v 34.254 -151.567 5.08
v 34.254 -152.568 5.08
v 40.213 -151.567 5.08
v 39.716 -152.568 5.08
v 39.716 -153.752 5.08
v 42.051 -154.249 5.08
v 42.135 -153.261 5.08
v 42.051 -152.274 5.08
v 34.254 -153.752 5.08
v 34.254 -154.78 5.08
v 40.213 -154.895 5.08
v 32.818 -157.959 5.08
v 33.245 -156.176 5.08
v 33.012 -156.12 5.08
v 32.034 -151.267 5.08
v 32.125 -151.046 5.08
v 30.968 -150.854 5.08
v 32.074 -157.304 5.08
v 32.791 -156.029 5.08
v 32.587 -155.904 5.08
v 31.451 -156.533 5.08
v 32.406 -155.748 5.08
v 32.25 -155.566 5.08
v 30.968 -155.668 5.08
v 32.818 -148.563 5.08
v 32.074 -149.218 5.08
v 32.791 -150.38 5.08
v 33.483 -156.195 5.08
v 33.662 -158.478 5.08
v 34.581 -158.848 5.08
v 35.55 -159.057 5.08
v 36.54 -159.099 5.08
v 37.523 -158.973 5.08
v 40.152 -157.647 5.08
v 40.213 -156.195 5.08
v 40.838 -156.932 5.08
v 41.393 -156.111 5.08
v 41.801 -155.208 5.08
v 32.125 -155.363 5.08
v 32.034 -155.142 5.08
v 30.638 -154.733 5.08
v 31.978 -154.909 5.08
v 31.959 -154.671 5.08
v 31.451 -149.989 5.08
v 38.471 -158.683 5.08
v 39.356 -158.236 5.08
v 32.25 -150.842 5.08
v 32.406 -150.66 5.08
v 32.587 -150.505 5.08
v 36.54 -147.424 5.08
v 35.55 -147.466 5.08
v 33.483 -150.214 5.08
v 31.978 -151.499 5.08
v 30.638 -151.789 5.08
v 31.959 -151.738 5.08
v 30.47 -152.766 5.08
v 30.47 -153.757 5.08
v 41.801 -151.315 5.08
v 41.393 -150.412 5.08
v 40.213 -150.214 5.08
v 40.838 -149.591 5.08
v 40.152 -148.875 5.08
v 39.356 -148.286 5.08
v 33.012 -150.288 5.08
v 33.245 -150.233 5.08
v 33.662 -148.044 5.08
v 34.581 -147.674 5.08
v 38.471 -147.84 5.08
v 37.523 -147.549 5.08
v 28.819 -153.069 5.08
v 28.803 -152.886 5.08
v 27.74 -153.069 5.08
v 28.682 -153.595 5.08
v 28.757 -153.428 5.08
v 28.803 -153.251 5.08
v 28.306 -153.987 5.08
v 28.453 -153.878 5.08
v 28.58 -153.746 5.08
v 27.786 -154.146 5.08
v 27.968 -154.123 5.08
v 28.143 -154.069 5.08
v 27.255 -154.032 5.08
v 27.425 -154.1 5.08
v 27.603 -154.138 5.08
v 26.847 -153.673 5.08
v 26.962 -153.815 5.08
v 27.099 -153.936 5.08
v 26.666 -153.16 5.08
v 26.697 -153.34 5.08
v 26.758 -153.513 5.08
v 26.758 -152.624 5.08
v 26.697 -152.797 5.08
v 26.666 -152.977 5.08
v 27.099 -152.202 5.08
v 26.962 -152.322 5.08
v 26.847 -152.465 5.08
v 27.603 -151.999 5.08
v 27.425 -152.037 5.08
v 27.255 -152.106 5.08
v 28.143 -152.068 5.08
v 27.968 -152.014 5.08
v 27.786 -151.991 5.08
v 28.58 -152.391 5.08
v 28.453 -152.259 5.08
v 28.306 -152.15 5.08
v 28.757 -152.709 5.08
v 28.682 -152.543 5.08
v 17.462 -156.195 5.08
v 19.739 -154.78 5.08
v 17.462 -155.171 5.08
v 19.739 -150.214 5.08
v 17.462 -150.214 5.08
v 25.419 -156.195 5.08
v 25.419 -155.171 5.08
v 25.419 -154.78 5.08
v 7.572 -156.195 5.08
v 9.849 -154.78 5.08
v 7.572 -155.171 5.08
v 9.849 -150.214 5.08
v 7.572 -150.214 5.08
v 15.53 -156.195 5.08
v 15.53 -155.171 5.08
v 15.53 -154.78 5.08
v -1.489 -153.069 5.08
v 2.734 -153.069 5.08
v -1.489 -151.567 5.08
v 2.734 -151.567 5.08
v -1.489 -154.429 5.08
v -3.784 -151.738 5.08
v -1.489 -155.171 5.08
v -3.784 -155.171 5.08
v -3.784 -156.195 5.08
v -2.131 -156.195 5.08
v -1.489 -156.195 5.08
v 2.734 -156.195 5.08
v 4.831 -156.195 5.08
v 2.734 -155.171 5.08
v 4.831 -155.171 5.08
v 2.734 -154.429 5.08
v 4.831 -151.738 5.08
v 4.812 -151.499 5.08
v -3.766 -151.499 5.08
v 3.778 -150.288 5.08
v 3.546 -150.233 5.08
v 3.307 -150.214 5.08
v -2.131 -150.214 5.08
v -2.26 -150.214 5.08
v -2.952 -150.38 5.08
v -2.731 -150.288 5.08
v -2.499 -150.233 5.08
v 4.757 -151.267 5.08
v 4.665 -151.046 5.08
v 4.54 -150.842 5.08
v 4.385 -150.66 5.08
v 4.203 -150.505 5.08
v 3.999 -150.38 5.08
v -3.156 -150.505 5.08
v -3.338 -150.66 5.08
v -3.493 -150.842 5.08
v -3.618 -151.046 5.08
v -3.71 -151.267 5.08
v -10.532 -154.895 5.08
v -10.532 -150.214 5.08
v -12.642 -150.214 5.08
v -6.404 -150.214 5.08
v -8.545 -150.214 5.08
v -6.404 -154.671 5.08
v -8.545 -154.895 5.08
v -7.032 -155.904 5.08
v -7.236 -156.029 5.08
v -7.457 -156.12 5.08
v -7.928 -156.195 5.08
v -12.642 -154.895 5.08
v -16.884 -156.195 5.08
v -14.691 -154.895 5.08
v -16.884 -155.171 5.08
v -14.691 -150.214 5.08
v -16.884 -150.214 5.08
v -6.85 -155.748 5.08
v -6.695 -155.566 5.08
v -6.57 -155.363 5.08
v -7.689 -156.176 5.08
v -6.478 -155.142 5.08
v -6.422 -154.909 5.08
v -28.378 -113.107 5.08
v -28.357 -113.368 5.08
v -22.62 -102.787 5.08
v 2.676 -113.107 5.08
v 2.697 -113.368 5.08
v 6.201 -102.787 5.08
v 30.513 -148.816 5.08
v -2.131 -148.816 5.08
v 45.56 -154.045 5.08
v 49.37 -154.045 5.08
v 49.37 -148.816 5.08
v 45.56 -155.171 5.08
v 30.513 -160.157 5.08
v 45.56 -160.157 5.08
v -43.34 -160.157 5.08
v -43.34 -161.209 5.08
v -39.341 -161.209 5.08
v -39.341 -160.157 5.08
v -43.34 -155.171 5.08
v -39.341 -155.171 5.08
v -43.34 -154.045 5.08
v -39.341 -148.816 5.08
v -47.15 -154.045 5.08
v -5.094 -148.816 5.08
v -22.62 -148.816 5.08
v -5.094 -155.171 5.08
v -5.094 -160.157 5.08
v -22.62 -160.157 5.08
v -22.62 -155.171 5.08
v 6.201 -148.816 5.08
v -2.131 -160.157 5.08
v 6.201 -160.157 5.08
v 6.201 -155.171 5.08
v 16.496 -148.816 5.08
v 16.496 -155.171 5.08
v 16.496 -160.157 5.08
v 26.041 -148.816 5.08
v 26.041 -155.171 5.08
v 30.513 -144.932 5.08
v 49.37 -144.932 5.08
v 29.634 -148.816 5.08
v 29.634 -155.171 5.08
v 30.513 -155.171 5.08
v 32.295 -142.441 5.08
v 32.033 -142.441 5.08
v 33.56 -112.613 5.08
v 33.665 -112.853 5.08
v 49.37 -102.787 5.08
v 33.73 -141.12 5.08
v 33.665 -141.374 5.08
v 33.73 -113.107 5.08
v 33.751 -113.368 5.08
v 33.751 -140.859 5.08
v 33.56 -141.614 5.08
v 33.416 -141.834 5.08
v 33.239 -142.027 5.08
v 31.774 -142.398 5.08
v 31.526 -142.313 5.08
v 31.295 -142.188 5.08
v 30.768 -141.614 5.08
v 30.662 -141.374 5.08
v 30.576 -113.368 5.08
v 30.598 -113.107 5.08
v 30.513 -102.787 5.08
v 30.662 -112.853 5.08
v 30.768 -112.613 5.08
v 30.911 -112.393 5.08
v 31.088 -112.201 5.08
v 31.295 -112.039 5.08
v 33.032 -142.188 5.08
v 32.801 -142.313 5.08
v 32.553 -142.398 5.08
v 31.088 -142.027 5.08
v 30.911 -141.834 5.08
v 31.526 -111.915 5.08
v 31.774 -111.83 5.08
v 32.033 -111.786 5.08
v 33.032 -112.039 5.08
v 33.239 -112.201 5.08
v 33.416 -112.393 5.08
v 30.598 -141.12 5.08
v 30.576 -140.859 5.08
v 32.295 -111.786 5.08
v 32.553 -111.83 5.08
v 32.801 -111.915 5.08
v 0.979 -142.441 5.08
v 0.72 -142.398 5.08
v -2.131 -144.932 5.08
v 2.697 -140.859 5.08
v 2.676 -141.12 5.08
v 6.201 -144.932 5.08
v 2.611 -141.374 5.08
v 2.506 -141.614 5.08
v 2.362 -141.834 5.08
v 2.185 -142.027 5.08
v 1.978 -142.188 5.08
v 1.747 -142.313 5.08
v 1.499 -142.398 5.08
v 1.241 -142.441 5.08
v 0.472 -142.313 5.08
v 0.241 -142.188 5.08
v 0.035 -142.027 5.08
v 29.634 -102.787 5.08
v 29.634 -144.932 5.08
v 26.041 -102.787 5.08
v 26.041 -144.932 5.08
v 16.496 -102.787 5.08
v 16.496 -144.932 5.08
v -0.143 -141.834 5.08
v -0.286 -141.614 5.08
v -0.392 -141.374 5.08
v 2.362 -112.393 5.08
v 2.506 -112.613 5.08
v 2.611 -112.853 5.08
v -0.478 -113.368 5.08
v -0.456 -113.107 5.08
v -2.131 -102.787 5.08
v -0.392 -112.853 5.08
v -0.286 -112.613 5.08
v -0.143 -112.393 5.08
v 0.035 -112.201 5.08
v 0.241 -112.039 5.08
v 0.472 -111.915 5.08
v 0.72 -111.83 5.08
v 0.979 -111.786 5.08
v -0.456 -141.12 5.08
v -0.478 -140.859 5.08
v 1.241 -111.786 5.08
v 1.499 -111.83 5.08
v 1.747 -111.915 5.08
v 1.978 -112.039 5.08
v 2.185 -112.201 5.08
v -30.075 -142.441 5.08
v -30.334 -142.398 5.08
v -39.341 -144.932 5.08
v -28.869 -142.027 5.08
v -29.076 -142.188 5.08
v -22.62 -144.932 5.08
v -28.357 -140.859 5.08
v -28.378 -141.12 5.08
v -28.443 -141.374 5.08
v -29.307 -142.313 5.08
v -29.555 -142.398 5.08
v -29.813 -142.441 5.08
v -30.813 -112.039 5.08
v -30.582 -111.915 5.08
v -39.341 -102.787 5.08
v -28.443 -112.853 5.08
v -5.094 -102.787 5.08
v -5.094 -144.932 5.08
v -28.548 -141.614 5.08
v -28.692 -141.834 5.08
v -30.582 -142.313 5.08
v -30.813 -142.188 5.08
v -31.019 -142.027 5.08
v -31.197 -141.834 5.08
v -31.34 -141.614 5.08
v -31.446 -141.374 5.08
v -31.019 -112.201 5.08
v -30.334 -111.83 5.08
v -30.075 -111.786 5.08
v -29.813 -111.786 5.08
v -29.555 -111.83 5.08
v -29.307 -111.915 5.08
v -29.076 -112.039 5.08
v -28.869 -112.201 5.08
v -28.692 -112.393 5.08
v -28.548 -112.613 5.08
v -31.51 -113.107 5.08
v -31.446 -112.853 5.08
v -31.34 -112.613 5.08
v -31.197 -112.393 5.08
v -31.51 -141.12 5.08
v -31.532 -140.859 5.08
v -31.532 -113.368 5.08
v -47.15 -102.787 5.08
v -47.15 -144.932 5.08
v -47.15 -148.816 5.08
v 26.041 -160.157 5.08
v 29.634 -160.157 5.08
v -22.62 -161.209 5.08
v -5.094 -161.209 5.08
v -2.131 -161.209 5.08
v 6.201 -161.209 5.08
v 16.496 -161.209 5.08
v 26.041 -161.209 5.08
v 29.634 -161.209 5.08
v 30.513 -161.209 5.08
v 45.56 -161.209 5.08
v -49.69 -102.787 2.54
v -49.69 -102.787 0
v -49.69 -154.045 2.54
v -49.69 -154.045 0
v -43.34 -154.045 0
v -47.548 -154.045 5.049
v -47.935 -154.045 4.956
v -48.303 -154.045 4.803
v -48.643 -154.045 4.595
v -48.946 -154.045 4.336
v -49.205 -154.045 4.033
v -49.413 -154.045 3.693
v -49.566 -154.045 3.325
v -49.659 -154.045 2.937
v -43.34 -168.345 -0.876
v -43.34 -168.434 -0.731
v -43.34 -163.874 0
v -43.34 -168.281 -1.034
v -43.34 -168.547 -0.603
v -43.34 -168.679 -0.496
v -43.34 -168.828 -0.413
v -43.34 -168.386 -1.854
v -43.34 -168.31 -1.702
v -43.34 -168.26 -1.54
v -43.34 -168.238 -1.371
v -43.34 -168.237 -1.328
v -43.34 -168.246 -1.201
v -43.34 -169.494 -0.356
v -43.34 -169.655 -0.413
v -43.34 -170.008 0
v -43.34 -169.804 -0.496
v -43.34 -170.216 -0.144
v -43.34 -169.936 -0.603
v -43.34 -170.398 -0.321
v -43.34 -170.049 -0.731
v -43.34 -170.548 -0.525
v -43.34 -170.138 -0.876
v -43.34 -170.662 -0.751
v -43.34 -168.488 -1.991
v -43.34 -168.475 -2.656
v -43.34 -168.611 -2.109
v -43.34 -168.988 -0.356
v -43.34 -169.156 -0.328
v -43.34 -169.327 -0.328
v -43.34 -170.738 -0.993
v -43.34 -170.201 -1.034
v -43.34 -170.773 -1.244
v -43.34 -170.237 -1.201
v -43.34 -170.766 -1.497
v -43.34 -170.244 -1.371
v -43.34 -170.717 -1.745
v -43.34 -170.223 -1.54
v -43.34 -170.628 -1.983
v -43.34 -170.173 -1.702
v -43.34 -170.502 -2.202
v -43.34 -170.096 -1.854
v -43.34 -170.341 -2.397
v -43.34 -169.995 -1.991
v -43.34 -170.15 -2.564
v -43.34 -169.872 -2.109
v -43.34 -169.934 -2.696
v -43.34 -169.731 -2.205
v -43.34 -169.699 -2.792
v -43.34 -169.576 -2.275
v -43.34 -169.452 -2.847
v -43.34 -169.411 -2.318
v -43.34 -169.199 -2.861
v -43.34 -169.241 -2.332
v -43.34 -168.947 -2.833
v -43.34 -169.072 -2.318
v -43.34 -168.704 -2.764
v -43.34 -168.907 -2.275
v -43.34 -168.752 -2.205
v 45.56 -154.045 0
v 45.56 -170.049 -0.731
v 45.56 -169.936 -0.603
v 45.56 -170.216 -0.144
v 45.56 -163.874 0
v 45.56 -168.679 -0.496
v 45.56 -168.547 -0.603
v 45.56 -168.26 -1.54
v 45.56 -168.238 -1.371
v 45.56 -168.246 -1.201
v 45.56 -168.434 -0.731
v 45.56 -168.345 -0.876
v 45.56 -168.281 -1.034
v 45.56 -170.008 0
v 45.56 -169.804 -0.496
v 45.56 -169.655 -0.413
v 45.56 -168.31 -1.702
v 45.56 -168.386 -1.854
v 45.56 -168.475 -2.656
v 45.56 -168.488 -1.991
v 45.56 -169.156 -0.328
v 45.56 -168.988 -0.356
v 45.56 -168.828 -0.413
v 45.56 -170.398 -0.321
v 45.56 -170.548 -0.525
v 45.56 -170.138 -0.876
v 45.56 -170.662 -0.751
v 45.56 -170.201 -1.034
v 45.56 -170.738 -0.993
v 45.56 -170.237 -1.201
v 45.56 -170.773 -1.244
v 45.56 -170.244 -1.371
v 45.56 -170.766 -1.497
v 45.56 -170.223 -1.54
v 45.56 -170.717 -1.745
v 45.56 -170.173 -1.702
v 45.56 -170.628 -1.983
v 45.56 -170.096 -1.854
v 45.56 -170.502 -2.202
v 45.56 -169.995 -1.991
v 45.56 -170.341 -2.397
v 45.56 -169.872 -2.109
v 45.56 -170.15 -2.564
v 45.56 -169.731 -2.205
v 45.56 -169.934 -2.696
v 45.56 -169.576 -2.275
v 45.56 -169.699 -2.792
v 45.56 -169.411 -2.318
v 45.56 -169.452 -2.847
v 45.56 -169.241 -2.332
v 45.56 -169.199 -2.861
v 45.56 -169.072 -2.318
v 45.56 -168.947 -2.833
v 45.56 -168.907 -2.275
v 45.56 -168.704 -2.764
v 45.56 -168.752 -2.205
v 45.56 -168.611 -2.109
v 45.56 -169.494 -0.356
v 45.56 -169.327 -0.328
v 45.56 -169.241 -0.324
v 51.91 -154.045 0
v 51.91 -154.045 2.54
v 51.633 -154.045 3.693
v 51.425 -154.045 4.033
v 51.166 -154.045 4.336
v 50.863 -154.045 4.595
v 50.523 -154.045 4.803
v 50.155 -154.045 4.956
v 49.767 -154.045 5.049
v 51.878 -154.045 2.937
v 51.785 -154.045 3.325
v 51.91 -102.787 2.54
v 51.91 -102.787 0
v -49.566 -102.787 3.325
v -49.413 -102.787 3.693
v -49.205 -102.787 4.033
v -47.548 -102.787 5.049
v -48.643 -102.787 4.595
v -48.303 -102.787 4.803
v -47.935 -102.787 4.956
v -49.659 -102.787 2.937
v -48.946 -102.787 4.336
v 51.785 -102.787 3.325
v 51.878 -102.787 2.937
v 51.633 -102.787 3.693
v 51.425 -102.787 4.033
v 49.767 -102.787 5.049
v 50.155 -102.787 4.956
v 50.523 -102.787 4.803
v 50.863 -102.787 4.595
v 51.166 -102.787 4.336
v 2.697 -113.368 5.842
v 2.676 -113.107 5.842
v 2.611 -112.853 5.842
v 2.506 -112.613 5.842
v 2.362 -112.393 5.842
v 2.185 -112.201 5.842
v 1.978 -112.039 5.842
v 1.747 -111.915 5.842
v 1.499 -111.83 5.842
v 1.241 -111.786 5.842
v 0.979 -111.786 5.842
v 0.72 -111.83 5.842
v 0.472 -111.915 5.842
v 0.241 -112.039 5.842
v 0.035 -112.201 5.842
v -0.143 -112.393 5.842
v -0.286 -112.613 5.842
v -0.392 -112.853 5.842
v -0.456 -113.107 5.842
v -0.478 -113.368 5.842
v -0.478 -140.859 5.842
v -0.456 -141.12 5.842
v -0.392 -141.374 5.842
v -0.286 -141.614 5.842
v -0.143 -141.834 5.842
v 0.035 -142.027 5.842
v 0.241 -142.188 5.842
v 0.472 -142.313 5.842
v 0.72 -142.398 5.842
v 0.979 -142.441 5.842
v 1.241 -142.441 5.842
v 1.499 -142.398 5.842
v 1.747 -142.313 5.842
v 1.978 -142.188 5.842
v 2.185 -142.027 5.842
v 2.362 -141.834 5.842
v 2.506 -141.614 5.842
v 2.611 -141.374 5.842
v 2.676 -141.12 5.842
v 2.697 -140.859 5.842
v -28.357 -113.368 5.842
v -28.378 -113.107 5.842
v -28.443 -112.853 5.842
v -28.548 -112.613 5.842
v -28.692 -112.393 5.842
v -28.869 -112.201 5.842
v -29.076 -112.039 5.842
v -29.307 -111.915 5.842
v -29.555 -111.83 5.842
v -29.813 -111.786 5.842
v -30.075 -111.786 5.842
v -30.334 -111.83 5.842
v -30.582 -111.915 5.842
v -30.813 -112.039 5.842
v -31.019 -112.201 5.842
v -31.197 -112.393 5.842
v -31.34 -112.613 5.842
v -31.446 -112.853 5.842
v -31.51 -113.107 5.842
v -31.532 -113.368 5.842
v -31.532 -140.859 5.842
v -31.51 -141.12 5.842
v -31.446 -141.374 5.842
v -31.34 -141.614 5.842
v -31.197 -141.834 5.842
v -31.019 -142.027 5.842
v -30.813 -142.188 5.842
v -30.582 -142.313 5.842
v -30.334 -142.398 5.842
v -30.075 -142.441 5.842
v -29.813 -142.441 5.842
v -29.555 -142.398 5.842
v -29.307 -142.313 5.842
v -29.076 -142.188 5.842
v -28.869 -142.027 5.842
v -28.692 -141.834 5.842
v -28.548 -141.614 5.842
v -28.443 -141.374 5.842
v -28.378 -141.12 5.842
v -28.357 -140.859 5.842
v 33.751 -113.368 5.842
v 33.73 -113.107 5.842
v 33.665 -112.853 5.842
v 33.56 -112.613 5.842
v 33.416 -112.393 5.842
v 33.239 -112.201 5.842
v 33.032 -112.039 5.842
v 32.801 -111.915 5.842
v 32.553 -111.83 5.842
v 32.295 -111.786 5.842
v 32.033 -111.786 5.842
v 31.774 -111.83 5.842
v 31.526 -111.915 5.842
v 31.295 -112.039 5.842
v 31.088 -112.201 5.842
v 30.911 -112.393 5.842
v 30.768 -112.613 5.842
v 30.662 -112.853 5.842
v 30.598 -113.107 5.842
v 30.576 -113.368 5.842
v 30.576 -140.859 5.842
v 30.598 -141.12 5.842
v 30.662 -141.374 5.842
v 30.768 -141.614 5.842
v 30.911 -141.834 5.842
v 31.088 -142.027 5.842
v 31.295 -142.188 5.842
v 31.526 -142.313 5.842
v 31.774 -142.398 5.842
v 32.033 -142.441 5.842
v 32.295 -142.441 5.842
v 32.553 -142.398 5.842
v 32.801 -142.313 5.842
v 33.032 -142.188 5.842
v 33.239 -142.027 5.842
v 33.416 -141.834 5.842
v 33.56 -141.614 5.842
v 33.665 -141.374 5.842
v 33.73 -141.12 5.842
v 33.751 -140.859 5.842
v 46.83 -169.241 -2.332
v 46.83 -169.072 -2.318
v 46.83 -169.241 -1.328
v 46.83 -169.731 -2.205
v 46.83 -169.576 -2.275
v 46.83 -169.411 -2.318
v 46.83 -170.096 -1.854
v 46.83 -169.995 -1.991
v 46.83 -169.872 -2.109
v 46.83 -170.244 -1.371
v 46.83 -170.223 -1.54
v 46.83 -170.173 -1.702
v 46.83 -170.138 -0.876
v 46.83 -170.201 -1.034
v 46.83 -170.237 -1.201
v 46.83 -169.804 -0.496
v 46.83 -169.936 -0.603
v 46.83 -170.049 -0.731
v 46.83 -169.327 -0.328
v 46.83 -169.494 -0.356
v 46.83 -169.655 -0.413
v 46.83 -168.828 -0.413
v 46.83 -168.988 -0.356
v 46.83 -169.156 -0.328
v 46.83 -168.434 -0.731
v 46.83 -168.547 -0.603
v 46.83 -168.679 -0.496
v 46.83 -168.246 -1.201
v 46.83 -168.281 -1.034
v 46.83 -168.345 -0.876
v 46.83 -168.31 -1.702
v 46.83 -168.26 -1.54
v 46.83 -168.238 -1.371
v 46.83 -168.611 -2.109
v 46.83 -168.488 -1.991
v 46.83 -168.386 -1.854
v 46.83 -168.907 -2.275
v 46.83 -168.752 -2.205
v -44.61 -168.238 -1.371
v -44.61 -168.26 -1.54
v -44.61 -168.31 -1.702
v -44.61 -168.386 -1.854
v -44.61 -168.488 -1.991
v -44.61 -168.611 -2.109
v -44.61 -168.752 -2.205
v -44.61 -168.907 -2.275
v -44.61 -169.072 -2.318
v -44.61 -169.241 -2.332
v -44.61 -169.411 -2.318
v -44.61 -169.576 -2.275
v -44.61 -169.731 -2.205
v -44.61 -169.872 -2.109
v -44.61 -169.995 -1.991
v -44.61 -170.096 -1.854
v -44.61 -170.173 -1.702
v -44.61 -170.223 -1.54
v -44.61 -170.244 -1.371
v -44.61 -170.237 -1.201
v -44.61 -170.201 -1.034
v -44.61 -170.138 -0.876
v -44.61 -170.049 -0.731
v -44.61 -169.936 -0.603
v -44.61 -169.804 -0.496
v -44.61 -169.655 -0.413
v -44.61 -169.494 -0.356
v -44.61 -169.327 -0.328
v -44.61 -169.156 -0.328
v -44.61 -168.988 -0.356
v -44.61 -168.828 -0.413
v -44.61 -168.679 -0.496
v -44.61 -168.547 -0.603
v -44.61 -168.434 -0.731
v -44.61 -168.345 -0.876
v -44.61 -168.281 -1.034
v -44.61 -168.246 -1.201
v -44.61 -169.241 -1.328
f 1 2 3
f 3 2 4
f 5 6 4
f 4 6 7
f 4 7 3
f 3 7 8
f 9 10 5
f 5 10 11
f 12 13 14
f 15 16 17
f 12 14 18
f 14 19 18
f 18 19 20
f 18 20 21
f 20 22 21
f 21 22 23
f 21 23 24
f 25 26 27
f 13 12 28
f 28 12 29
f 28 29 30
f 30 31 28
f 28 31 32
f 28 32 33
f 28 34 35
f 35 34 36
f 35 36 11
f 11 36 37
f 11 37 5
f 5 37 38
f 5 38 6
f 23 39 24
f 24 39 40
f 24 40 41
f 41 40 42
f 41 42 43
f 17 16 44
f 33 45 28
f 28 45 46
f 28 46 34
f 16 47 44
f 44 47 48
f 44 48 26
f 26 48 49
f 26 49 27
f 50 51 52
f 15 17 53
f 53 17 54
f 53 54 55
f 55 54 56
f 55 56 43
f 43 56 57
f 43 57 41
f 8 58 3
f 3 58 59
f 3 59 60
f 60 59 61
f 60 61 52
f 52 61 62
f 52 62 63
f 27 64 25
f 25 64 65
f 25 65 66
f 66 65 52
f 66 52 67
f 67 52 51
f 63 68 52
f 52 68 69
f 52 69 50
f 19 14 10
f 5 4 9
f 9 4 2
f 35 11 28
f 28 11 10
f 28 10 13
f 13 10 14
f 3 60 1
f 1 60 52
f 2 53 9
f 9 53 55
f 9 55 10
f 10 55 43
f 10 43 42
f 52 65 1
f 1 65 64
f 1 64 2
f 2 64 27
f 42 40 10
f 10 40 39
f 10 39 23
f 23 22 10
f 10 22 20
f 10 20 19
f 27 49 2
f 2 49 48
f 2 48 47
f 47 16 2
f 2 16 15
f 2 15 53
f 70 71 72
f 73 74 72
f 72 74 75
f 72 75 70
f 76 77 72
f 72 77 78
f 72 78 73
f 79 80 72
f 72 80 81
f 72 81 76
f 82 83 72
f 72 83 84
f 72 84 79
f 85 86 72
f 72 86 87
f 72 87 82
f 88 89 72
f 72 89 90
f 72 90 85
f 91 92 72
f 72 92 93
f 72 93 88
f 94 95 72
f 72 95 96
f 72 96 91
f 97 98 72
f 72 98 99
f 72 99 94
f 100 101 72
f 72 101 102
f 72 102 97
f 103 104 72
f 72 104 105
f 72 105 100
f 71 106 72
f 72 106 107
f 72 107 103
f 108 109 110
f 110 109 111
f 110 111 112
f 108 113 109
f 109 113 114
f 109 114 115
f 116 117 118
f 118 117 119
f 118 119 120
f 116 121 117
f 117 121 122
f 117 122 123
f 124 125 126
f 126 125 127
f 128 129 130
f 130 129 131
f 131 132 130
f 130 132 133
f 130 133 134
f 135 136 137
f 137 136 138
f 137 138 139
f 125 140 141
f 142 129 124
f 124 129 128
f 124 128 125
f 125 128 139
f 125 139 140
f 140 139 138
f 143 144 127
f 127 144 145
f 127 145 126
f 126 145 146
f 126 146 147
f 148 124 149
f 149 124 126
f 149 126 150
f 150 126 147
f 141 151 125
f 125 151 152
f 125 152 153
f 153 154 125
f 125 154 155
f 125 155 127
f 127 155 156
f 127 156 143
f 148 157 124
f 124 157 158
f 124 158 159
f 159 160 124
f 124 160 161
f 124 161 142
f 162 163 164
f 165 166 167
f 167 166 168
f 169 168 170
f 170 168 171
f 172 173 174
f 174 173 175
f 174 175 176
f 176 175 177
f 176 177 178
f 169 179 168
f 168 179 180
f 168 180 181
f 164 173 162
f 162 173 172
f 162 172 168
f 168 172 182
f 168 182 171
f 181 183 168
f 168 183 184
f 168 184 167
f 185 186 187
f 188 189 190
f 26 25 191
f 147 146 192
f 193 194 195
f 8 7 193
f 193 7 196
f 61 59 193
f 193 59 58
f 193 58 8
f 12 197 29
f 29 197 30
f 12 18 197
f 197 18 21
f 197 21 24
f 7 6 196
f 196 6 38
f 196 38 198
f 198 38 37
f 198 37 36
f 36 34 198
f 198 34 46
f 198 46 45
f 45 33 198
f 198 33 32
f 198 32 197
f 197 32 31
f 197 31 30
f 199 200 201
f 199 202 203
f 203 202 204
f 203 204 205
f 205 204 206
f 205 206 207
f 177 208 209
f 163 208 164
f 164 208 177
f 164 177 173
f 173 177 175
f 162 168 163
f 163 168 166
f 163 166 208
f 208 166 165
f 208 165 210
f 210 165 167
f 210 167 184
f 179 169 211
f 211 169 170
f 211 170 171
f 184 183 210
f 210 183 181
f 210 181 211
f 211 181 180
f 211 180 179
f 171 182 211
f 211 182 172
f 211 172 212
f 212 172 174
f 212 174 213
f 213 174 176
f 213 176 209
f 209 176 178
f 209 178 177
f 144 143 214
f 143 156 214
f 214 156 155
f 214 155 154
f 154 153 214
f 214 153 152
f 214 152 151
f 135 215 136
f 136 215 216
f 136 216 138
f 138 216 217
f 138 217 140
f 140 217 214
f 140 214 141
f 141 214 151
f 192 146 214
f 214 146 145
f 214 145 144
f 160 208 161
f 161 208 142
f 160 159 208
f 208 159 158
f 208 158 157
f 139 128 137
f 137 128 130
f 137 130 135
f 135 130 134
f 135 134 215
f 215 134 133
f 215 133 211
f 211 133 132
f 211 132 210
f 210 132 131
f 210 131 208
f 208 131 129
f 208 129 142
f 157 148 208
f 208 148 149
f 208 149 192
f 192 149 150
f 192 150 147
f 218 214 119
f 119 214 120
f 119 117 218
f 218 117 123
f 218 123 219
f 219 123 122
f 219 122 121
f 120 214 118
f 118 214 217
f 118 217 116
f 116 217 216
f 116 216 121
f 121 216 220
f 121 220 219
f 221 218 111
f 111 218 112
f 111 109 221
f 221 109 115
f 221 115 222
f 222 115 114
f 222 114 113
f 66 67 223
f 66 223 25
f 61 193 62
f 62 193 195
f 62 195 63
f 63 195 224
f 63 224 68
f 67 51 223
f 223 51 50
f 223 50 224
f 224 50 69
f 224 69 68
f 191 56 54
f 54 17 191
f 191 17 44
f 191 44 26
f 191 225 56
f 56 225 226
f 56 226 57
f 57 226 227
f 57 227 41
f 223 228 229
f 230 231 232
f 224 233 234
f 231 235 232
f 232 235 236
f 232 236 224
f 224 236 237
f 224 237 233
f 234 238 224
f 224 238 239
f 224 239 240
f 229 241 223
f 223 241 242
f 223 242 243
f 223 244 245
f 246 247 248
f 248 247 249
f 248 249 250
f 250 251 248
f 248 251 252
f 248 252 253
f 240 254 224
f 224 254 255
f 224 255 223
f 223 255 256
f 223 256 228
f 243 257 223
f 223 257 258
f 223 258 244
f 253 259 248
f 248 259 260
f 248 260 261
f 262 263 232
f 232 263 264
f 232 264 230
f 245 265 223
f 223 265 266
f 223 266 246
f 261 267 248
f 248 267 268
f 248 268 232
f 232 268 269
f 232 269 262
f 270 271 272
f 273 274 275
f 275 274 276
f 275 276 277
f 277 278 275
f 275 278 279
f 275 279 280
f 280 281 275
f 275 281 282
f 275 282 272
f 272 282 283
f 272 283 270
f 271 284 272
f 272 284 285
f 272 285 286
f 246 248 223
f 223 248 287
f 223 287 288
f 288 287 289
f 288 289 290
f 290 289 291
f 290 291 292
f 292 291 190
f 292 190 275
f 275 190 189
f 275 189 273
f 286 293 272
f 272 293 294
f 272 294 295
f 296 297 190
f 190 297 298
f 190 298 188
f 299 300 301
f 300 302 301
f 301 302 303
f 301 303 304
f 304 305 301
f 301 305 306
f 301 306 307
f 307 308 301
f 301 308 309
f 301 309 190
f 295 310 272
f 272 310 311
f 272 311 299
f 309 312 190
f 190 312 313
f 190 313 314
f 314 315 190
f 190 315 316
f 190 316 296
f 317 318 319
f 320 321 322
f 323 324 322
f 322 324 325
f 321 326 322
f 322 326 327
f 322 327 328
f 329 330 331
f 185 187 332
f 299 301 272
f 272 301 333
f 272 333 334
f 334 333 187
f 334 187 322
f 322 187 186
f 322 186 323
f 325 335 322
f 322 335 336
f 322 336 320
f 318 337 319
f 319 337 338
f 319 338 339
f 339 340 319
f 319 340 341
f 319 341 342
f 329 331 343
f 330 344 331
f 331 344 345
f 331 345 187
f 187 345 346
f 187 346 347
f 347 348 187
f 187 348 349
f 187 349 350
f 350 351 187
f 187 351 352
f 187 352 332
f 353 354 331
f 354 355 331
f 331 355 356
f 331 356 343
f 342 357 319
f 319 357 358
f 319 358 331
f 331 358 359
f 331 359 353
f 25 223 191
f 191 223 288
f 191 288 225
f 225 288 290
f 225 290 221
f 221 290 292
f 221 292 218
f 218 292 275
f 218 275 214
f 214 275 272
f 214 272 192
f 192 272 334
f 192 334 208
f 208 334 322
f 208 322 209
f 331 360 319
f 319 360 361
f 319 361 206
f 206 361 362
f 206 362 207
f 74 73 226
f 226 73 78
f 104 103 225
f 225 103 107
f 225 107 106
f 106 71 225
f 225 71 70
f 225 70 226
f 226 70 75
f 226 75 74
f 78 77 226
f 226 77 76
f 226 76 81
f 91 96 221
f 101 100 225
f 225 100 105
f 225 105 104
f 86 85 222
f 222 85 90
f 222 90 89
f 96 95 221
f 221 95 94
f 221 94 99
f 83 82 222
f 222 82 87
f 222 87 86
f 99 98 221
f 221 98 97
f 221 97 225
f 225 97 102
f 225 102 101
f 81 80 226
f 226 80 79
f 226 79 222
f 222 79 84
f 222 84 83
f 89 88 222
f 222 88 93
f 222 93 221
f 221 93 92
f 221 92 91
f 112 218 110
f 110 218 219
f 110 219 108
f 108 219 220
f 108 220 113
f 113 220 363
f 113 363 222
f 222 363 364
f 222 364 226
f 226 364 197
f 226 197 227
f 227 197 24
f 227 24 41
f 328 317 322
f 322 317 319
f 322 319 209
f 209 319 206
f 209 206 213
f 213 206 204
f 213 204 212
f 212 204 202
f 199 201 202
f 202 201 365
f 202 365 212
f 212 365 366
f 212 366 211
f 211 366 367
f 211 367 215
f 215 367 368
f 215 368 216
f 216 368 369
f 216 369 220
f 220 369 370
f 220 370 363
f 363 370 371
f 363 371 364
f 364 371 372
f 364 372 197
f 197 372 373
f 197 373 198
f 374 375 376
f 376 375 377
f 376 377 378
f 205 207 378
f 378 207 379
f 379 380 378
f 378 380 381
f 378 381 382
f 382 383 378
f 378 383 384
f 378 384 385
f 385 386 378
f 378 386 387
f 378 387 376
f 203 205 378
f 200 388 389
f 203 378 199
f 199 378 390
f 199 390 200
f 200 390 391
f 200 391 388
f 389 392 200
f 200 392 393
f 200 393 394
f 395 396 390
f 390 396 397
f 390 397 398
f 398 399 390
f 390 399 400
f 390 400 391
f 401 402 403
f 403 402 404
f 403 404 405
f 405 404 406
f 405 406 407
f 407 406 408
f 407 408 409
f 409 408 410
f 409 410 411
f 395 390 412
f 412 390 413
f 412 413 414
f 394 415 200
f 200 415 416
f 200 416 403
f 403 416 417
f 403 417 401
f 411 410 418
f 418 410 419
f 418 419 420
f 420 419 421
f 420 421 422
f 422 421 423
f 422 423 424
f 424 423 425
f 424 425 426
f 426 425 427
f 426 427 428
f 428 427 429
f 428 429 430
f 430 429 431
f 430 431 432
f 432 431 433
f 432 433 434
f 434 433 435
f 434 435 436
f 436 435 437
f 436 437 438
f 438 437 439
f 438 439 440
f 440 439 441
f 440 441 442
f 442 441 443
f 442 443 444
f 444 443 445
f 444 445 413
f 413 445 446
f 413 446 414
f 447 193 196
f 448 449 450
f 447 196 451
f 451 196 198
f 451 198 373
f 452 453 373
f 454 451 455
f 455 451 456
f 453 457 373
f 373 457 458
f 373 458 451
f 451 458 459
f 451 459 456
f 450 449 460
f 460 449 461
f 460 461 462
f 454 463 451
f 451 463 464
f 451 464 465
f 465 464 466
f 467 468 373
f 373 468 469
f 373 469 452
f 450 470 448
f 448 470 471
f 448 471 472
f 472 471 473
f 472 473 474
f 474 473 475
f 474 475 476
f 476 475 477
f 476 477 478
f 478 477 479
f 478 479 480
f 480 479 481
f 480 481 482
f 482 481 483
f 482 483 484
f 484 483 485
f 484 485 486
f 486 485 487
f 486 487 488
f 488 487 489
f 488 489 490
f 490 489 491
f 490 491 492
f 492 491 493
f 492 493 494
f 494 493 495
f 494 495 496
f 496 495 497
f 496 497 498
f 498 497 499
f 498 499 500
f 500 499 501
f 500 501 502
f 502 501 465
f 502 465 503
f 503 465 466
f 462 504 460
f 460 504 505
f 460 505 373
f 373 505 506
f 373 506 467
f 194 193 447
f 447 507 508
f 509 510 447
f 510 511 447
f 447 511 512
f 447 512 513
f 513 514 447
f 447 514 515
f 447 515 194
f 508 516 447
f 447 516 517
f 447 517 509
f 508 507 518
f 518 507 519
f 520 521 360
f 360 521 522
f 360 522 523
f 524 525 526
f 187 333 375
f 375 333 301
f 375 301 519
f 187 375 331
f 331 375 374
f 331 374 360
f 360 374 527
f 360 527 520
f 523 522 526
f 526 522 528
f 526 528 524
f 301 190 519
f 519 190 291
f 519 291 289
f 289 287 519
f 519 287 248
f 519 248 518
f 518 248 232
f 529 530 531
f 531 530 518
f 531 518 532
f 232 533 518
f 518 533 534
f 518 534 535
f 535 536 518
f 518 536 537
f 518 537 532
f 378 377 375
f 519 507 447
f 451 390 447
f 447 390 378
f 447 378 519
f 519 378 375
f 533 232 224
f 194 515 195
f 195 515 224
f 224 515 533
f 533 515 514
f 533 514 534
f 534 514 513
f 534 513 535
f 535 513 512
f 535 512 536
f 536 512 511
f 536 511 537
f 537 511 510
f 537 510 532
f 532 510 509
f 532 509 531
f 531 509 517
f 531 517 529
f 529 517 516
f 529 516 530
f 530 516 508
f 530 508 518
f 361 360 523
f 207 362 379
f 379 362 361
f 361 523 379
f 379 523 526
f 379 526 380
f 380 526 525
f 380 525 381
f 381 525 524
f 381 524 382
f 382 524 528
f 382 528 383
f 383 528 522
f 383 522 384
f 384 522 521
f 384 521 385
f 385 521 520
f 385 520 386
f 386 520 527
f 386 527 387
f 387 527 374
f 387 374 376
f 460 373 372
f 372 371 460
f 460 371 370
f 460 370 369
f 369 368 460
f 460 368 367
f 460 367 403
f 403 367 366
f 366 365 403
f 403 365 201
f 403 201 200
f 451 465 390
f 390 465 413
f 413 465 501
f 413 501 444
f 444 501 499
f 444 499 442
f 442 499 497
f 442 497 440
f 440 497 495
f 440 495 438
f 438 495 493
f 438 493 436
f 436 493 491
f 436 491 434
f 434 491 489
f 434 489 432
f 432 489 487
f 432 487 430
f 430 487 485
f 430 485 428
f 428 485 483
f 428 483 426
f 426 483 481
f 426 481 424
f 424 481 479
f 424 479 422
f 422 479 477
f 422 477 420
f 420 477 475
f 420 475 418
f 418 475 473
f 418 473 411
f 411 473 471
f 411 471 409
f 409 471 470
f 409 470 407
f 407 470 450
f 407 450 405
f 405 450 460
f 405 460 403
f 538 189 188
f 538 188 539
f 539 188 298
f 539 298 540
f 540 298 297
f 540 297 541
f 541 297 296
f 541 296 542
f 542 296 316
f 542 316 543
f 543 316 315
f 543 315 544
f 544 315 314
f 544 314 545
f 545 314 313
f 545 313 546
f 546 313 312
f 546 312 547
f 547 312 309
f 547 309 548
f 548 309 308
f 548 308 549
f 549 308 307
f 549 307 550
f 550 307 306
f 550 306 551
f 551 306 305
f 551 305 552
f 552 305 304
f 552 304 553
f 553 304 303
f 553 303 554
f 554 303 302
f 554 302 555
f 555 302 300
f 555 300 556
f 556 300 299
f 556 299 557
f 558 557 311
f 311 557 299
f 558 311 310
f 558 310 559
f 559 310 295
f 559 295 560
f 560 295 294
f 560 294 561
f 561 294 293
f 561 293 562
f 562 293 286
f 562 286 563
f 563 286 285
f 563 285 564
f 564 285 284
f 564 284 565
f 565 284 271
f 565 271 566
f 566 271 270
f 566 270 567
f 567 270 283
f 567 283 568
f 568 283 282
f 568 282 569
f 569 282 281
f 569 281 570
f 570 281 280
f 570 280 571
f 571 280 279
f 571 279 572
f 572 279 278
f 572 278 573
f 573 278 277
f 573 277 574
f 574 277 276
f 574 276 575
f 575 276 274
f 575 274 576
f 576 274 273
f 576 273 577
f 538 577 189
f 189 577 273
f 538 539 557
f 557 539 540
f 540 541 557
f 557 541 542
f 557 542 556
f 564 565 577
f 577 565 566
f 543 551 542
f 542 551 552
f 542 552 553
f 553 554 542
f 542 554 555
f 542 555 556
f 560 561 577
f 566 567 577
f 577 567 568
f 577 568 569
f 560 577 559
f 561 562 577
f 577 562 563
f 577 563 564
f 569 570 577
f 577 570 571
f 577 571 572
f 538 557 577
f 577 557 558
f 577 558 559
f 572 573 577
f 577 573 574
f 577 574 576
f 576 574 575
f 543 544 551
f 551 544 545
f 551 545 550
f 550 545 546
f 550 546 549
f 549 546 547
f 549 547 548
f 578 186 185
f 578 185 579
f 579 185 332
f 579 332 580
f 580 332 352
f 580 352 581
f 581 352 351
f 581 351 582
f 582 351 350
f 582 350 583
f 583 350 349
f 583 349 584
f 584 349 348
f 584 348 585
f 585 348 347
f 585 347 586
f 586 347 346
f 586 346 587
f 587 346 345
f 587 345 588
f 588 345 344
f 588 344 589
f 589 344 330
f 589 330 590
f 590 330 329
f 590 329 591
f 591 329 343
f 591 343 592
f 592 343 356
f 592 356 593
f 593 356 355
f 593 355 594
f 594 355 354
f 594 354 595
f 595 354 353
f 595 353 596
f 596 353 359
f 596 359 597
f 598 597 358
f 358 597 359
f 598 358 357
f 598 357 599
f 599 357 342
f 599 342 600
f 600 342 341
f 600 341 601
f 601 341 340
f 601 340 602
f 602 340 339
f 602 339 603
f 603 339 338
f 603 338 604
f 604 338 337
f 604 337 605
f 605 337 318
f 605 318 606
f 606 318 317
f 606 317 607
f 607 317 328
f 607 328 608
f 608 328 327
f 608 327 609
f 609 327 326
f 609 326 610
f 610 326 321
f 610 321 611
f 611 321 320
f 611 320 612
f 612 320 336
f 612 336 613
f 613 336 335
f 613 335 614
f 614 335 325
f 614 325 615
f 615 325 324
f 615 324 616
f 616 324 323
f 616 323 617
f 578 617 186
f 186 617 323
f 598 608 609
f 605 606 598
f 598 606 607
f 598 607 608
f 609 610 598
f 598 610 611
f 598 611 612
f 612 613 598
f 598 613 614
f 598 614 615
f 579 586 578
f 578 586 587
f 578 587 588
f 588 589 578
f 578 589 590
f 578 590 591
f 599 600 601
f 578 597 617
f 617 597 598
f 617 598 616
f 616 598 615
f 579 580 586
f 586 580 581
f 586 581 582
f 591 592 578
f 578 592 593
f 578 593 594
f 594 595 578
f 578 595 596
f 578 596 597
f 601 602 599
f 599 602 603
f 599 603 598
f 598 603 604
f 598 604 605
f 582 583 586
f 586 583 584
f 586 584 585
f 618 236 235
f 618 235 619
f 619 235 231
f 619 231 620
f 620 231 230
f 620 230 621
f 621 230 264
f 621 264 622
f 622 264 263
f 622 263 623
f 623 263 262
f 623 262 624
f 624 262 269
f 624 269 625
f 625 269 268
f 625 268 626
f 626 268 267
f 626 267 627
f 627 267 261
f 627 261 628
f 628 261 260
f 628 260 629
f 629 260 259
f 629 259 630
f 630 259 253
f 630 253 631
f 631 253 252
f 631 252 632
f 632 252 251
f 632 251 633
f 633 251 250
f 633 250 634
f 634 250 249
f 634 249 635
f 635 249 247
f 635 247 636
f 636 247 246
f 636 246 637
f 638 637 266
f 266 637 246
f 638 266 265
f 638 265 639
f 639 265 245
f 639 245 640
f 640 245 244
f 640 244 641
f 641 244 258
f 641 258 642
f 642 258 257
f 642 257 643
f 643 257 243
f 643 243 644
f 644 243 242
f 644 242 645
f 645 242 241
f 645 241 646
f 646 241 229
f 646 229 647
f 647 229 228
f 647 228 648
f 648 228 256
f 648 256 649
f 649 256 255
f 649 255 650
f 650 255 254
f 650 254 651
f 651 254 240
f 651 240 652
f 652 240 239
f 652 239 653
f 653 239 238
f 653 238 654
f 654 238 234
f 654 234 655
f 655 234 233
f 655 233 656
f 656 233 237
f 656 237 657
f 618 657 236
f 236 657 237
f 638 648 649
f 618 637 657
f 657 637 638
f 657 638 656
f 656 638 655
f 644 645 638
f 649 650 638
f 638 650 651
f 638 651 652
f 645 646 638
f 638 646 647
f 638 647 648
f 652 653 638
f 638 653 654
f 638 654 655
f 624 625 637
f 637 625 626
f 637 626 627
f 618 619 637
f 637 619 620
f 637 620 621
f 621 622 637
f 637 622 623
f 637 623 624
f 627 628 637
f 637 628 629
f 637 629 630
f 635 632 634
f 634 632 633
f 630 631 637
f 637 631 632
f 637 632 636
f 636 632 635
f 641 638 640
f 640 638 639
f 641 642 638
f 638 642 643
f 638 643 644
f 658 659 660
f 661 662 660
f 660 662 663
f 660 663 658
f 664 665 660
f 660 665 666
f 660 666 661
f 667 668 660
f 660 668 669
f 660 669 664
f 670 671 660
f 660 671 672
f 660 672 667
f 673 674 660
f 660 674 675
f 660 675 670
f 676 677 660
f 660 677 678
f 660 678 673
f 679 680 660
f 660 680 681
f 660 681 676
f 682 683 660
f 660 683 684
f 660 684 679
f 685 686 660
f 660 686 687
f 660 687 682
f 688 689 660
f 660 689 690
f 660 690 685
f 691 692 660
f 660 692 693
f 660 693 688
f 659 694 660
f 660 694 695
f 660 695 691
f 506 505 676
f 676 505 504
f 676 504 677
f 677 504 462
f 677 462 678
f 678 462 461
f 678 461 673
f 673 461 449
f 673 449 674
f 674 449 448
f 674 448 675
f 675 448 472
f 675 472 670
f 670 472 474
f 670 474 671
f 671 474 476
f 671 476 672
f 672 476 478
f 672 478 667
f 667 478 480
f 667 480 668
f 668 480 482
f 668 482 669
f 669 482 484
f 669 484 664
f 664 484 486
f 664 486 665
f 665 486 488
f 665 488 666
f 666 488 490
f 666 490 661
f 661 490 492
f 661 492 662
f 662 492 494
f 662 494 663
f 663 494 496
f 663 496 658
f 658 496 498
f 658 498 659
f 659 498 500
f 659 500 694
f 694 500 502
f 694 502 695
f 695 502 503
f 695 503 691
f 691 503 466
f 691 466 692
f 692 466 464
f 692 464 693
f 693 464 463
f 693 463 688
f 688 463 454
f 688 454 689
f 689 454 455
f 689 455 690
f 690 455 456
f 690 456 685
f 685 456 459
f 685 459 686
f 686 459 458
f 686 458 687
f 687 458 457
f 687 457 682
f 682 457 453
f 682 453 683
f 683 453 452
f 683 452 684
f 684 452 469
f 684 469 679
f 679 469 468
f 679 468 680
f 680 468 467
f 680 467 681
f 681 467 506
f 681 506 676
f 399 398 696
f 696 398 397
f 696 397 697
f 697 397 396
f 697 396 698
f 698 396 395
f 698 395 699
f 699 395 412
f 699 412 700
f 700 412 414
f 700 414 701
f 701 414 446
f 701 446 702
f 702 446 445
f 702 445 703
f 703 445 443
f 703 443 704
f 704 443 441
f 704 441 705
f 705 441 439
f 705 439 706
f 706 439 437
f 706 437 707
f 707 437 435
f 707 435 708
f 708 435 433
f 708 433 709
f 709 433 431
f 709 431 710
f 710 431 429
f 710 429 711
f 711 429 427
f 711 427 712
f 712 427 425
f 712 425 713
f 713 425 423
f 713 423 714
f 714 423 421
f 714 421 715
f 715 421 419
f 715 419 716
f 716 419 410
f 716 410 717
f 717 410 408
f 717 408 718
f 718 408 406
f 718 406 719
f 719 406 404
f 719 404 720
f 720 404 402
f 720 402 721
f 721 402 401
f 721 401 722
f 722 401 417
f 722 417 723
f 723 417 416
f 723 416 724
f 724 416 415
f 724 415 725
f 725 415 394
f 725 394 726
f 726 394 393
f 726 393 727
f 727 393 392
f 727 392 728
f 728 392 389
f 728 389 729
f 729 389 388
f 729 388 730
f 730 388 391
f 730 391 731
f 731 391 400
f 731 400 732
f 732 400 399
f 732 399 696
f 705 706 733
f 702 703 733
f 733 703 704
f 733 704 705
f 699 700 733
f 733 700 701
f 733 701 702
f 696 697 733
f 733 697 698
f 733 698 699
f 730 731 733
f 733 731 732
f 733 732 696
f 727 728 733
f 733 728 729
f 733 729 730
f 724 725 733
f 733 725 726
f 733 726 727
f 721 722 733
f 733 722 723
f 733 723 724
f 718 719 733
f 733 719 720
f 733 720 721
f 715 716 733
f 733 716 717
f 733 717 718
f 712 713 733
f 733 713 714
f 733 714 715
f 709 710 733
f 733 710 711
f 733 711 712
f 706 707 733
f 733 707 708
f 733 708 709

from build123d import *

# Parameters (mm, degrees)
EXTRUDE1_DEPTH               = 5.08
FILLET1_R                    = 2.54
CHAMFER1_SIZE2               = 5.08
CHAMFER1_SIZE                = 8.798818102
EXTRUDE3_DEPTH               = 88.9
EXTRUDE4_DEPTH               = 0.762
SALIENTE_EXTRUIR1_DEPTH      = 1.27
SALIENTE_EXTRUIR1_DEPTH_BACK = 90.17
SKETCH2_R                    = 1.003990475


with BuildPart() as part:
    # Sketch1 → Extrude1 (new body)
    with BuildSketch(Plane.XY):
        Polygon((-49.690313901, -102.787097767), (51.909686099, -102.787097767), (51.909686099, -154.045409896), (45.559686099, -154.045409896), (45.559686099, -170.008151162), (-43.340313901, -170.008151162), (-43.340313901, -154.045409896), (-49.690313901, -154.045409896), align=None)
    extrude(amount=EXTRUDE1_DEPTH)

    # Fillet1
    fillet1_edges = [part.edges().sort_by_distance(p)[0] for p in [
        (51.909686099, -128.416253832, 5.08),
        (-49.690313901, -128.416253832, 5.08),
    ]]
    fillet(fillet1_edges, radius=FILLET1_R)

    # Chamfer1
    chamfer1_edges = [part.edges().sort_by_distance(p)[0] for p in [
        (1.109686099, -170.008151162, 5.08),
    ]]
    chamfer1_side = [part.faces().sort_by_distance(p)[0] for p in [
        (1.109686099, -169.906551162, 5.08),
    ]]
    chamfer(chamfer1_edges, length=CHAMFER1_SIZE - 0.0001, length2=CHAMFER1_SIZE2 - 0.0001, reference=chamfer1_side[0])  # a hair under: the kernel refuses the full size

    # Sketch3 → Extrude3 (add)
    with BuildSketch(Plane(origin=(45.559686099, 0, 0), x_dir=(0, 0, -1), z_dir=(1, 0, 0))):
        with BuildLine():
            Line((-2.656143456, -165.407575745), (0, -170.008151162))
            ThreePointArc((0, -170.008151162), (2.094834297, -170.56946032), (2.656143456, -168.474626023))
            Line((2.656143456, -168.474626023), (0, -163.874050605))
            Line((0, -163.874050605), (-2.656143456, -165.407575745))
        make_face()
    extrude(amount=-EXTRUDE3_DEPTH)

    # Sketch4 → Extrude4 (add)
    with BuildSketch(Plane.XY.offset(5.08)):
        with BuildLine():
            Line((2.697186099, -113.368491021), (2.697186099, -140.858908158))
            ThreePointArc((2.697186099, -140.858908158), (1.109686099, -142.446408158), (-0.477813901, -140.858908158))
            Line((-0.477813901, -140.858908158), (-0.477813901, -113.368491021))
            ThreePointArc((-0.477813901, -113.368491021), (1.109686099, -111.780991021), (2.697186099, -113.368491021))
        make_face()
        with BuildLine():
            Line((-31.531803629, -113.368491021), (-31.531803629, -140.858908158))
            ThreePointArc((-31.531803629, -140.858908158), (-29.944303629, -142.446408158), (-28.356803629, -140.858908158))
            Line((-28.356803629, -140.858908158), (-28.356803629, -113.368491021))
            ThreePointArc((-28.356803629, -113.368491021), (-29.944303629, -111.780991021), (-31.531803629, -113.368491021))
        make_face()
        with BuildLine():
            Line((33.751175827, -113.368491021), (33.751175827, -140.858908158))
            ThreePointArc((33.751175827, -140.858908158), (32.163675827, -142.446408158), (30.576175827, -140.858908158))
            Line((30.576175827, -140.858908158), (30.576175827, -113.368491021))
            ThreePointArc((30.576175827, -113.368491021), (32.163675827, -111.780991021), (33.751175827, -113.368491021))
        make_face()
    extrude(amount=EXTRUDE4_DEPTH)

    # Sketch2 → Saliente-Extruir1 (add, two sides: drawn at the far end of the back side and taken through both)
    with BuildSketch(Plane(origin=(45.559686099, 0, 0), x_dir=(0, 0, -1), z_dir=(1, 0, 0)).offset(-SALIENTE_EXTRUIR1_DEPTH_BACK)):
        with Locations((1.328071728, -169.241388592)):
            Circle(SKETCH2_R)
    extrude(amount=SALIENTE_EXTRUIR1_DEPTH + SALIENTE_EXTRUIR1_DEPTH_BACK)


solid = part.part
